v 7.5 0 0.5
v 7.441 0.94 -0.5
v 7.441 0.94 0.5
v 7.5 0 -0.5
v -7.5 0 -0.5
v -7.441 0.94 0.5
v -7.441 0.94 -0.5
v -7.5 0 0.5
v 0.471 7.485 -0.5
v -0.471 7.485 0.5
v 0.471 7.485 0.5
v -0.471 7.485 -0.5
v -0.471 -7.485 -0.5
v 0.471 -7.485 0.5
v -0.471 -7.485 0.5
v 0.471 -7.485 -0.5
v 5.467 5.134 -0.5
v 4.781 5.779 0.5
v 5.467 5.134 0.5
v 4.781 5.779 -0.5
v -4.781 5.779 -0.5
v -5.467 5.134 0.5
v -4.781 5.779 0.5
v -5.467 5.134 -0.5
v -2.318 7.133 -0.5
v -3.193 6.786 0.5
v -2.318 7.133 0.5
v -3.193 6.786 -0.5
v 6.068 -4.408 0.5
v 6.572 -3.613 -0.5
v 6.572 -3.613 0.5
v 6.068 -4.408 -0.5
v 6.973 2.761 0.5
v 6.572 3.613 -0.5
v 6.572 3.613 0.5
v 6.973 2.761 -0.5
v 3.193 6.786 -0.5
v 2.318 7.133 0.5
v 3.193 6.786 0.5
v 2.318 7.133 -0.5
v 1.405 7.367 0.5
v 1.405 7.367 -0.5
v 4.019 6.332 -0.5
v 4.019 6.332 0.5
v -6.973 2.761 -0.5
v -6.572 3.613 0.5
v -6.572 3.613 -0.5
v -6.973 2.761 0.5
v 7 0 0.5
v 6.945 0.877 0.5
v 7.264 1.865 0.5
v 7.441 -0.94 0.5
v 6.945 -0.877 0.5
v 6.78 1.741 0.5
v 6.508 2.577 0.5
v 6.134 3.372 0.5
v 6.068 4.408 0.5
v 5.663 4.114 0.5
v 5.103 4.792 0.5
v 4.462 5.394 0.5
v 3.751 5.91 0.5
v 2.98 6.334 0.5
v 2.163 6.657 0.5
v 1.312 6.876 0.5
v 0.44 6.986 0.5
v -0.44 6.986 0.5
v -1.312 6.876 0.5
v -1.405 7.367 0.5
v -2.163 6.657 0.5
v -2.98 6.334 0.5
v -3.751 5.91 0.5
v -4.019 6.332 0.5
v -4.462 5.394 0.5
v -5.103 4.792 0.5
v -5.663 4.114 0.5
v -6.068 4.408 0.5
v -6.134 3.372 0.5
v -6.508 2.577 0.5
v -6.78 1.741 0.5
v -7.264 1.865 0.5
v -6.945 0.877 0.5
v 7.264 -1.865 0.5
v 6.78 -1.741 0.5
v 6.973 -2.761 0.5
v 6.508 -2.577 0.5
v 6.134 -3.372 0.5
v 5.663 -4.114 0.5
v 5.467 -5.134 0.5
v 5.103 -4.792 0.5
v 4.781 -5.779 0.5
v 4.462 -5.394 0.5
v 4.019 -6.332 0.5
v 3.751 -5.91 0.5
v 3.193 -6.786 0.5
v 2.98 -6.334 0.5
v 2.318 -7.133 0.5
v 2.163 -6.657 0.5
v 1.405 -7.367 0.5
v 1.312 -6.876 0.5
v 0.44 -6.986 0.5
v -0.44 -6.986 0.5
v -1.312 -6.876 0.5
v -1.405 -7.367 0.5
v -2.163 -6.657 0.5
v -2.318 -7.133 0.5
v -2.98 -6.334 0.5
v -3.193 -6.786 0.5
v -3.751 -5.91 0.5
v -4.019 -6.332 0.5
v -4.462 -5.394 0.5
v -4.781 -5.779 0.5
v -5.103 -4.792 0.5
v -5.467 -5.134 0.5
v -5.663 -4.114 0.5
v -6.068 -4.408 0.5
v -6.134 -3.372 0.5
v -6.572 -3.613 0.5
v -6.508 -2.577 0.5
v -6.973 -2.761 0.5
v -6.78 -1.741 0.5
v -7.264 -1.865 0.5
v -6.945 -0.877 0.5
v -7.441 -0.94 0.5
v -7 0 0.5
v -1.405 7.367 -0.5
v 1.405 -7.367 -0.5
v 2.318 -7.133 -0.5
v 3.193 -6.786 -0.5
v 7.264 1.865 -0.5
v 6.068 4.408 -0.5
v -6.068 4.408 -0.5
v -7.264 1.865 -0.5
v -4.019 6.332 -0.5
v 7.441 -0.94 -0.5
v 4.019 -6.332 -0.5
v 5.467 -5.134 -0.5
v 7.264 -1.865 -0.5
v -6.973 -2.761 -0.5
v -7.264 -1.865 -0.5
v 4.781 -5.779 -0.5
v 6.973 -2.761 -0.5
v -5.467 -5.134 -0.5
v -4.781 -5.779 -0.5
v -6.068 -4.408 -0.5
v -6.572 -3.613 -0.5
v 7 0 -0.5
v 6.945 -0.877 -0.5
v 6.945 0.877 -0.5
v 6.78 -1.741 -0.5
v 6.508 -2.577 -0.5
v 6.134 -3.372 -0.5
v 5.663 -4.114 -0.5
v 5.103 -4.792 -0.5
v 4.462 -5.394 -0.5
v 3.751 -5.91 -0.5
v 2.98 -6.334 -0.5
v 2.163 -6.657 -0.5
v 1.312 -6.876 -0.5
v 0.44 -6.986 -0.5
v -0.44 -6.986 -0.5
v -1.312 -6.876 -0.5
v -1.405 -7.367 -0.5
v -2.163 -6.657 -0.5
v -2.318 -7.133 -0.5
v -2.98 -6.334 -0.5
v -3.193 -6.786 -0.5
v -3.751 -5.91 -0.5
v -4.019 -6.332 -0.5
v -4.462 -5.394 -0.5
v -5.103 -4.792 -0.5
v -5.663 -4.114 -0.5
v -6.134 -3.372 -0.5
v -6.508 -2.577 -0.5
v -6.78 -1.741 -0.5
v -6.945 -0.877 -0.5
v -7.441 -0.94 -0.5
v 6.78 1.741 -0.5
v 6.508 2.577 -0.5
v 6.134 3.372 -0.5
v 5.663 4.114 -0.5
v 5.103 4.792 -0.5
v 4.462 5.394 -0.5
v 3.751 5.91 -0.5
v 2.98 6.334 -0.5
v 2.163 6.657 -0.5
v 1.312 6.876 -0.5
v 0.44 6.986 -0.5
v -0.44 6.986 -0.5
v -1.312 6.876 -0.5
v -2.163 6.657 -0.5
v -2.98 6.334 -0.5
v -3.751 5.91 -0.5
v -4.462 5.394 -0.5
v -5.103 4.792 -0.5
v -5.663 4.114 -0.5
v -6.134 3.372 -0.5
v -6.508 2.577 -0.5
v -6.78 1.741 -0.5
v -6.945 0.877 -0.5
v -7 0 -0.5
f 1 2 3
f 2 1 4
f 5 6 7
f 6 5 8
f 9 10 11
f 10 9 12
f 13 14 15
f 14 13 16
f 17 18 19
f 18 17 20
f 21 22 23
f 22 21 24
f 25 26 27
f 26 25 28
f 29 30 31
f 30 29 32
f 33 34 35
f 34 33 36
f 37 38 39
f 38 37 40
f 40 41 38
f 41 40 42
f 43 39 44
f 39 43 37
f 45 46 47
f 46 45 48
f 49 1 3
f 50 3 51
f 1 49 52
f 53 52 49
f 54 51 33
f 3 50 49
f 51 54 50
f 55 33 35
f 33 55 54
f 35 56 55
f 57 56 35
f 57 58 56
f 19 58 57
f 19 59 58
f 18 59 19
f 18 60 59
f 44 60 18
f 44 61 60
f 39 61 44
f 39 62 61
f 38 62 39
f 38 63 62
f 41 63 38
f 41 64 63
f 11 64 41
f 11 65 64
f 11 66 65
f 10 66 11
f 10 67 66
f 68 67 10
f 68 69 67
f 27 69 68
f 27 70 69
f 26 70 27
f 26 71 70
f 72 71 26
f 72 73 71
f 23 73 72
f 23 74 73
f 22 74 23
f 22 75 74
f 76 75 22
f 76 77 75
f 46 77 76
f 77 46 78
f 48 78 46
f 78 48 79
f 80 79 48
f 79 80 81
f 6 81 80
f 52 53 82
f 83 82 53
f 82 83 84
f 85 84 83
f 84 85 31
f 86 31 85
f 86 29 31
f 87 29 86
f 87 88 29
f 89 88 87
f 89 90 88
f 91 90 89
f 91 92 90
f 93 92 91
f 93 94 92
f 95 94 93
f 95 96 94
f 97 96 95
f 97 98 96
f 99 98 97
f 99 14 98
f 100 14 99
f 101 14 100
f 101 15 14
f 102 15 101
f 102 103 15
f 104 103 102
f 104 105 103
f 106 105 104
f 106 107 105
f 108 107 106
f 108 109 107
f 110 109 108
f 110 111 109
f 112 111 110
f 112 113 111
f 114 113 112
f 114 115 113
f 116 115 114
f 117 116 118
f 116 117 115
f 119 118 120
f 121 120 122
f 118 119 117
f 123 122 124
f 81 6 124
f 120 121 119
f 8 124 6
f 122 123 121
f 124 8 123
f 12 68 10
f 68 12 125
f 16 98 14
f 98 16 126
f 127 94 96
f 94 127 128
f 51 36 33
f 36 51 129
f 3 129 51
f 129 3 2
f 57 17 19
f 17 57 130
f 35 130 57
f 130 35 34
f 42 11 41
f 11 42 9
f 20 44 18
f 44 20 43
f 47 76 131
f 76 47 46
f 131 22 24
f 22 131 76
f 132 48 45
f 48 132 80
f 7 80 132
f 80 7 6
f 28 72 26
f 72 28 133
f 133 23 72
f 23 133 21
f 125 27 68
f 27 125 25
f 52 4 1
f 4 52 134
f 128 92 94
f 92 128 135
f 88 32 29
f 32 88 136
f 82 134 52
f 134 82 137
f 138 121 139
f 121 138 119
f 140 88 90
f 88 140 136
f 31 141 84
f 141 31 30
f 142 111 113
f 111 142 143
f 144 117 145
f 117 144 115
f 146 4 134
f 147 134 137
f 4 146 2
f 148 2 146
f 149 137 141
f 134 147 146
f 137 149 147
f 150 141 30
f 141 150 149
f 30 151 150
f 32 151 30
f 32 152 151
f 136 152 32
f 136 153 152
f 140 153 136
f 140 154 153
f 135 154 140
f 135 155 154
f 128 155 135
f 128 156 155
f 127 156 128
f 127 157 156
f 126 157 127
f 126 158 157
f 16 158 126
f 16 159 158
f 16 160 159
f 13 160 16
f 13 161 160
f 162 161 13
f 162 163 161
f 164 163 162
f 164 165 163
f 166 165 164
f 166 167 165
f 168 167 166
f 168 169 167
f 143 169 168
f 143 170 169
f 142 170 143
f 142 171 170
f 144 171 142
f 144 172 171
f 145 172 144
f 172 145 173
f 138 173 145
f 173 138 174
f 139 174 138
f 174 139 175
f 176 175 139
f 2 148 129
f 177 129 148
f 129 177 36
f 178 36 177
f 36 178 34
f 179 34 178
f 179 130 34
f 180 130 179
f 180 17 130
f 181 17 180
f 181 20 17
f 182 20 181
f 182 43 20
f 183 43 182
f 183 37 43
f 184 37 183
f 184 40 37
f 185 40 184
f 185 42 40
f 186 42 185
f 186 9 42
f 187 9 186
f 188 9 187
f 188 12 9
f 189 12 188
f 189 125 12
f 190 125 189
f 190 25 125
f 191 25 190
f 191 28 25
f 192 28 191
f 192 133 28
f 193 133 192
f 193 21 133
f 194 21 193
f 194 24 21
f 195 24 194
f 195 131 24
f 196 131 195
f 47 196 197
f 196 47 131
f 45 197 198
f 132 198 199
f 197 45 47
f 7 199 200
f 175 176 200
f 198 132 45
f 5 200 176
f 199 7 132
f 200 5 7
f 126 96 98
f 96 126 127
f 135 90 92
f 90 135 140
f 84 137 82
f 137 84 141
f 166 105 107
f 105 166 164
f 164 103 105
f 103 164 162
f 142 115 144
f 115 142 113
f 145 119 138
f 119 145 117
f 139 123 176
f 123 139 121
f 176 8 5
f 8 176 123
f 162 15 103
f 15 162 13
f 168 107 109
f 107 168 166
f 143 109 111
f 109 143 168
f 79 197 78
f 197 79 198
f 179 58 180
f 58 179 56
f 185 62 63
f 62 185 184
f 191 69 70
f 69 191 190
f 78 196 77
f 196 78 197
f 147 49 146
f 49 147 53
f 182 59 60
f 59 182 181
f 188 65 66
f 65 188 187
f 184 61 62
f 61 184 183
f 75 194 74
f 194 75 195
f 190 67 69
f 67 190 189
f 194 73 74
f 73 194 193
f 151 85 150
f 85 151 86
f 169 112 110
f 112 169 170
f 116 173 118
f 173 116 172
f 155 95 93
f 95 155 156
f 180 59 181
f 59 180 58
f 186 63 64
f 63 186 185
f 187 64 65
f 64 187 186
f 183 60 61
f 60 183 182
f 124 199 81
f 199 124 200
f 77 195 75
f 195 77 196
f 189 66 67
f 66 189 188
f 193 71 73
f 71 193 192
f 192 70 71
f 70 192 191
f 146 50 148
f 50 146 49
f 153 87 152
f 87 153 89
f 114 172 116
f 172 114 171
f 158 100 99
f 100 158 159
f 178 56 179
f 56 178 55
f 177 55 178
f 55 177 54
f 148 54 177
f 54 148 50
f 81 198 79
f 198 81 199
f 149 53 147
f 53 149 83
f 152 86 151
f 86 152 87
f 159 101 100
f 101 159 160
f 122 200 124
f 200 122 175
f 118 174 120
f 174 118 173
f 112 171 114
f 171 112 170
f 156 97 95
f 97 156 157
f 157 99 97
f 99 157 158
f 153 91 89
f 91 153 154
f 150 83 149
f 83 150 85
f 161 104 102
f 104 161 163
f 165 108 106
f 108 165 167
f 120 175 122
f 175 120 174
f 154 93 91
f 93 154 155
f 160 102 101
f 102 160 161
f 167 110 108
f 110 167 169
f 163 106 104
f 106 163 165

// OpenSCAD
$fn = 50;


difference() {
	union() {
		translate(v = [0, 0, -0.5000000000]) {
			cylinder(h = 1, r = 7.5000000000);
		}
	}
	union() {
		translate(v = [0, 0, -100.0000000000]) {
			cylinder(h = 200, r = 7);
		}
	}
}
